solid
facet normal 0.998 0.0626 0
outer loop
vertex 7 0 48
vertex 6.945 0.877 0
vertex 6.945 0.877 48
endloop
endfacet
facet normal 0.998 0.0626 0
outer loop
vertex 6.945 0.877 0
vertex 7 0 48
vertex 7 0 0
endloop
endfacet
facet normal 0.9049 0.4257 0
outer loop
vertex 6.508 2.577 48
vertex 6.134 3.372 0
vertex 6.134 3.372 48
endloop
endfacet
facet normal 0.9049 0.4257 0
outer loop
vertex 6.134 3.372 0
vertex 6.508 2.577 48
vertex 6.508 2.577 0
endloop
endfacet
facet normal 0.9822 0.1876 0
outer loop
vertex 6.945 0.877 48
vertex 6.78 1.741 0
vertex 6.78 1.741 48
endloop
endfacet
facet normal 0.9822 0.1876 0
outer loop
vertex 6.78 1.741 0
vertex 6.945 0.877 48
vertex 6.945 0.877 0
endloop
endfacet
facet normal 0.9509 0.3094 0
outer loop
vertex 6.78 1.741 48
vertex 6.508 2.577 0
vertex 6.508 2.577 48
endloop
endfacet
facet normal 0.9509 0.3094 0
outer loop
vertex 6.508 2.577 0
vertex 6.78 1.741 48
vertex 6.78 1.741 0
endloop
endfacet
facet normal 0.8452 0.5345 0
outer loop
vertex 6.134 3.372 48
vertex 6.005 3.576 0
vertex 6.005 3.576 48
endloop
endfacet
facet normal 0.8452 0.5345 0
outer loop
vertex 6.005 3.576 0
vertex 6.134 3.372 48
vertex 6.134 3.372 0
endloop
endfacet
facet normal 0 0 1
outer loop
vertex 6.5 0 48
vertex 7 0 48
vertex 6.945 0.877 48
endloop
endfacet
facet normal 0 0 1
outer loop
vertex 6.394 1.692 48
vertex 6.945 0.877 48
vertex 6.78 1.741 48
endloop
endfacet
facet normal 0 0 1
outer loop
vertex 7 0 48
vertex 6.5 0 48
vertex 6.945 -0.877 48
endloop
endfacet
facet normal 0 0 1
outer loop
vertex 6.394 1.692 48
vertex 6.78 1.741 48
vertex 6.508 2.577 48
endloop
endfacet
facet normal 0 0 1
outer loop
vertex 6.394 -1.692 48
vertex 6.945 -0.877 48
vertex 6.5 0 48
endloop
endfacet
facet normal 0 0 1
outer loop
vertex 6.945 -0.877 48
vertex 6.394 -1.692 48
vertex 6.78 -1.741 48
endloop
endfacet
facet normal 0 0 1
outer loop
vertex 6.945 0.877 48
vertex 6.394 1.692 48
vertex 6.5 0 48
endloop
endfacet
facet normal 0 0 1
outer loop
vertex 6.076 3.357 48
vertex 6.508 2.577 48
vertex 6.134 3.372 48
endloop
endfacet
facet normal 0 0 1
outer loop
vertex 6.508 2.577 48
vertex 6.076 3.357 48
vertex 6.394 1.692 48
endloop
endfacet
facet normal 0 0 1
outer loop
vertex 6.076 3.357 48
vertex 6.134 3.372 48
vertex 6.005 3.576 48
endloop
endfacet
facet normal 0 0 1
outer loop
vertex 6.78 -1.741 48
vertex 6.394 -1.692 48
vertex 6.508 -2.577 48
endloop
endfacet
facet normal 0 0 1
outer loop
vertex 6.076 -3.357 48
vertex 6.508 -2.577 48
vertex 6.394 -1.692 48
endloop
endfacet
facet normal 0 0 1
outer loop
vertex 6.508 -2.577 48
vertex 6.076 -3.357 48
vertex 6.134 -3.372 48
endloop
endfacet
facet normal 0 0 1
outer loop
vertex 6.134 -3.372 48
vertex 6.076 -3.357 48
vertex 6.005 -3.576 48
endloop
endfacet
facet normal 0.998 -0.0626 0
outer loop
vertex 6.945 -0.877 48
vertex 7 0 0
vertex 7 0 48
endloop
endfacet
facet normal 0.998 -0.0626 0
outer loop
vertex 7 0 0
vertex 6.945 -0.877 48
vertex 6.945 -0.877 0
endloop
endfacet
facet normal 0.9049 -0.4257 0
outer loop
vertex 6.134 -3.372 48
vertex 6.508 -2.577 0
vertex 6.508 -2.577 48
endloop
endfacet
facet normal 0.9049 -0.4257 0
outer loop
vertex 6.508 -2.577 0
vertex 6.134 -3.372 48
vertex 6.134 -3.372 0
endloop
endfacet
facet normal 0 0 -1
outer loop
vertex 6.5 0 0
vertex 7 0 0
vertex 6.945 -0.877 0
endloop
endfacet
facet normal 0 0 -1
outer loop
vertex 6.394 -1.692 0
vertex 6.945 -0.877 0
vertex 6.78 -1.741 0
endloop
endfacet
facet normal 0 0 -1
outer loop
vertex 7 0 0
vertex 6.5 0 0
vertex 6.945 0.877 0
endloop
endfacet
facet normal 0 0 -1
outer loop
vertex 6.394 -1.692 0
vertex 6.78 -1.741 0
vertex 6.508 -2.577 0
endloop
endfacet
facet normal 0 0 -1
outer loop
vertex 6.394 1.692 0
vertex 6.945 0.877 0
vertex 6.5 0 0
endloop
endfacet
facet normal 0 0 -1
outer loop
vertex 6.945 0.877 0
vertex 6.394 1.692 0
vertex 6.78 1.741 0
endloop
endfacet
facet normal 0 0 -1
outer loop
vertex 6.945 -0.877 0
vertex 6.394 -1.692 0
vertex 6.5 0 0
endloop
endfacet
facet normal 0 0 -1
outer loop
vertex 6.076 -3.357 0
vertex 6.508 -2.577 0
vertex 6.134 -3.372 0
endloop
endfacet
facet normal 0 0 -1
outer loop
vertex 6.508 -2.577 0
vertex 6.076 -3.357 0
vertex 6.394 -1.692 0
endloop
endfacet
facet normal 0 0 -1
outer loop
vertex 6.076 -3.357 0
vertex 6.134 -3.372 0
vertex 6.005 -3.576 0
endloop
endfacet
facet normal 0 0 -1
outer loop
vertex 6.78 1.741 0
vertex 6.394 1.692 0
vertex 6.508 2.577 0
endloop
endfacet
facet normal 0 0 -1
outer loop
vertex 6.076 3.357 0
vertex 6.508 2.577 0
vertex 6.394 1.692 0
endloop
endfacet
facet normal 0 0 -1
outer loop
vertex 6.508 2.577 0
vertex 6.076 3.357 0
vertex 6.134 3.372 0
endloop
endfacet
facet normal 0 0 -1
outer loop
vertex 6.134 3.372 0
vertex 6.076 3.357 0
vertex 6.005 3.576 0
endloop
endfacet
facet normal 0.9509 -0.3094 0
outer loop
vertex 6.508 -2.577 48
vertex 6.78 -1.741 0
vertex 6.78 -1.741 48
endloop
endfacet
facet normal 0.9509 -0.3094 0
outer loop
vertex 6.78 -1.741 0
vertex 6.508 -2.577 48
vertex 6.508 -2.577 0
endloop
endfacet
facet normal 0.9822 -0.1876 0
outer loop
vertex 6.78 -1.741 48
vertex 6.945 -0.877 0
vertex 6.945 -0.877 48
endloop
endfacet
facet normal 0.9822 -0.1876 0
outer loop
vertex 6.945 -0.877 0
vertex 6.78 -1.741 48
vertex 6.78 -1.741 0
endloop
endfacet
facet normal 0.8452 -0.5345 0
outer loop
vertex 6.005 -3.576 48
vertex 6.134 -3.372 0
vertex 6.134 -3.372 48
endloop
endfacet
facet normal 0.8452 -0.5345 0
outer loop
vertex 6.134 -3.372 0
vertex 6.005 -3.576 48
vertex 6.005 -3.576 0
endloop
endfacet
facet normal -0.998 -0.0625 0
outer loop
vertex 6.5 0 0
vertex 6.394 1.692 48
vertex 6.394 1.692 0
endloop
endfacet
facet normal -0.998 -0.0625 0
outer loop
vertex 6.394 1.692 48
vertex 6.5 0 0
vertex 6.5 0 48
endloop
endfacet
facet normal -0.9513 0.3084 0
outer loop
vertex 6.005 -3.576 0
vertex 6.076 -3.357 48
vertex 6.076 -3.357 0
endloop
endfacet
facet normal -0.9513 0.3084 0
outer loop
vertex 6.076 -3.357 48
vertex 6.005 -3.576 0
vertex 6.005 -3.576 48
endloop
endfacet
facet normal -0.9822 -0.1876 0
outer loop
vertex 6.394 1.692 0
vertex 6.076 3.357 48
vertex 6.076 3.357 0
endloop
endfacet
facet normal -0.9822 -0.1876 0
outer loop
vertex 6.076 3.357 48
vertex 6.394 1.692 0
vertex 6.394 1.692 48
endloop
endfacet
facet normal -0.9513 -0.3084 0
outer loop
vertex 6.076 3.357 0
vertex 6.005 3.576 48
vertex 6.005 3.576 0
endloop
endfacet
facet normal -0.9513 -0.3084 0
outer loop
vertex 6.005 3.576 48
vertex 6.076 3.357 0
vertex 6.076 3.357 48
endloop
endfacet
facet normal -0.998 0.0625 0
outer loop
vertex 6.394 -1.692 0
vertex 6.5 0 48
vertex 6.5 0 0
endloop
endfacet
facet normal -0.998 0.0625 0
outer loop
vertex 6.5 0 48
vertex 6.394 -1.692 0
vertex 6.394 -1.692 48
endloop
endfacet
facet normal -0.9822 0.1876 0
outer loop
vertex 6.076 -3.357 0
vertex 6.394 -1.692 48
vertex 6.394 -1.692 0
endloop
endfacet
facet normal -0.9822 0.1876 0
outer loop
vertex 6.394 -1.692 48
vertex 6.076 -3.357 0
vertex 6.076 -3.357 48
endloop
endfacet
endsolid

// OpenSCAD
$fn = 50;


difference() {
	union() {
		cylinder(h = 48, r = 7.0000000000);
		translate(v = [-10.0000000000, 0, 0]) {
			cylinder(h = 48, r = 7.0000000000);
		}
	}
	union() {
		cylinder(h = 48, r = 3.2500000000);
		cylinder(h = 48, r = 1.8000000000);
		cylinder(h = 48, r = 1.8000000000);
		cylinder(h = 48, r = 1.8000000000);
		translate(v = [-14.5000000000, 0, 0]) {
			hull() {
				translate(v = [-3.7500000000, 0.0000000000, 0]) {
					cylinder(h = 48, r = 7.5000000000);
				}
				translate(v = [3.7500000000, 0.0000000000, 0]) {
					cylinder(h = 48, r = 7.5000000000);
				}
				translate(v = [-3.7500000000, -0.0000000000, 0]) {
					cylinder(h = 48, r = 7.5000000000);
				}
				translate(v = [3.7500000000, -0.0000000000, 0]) {
					cylinder(h = 48, r = 7.5000000000);
				}
			}
		}
		translate(v = [-7.0000000000, 0, 0.0000000000]) {
			cylinder(h = 48, r = 13.5000000000);
		}
	}
}
